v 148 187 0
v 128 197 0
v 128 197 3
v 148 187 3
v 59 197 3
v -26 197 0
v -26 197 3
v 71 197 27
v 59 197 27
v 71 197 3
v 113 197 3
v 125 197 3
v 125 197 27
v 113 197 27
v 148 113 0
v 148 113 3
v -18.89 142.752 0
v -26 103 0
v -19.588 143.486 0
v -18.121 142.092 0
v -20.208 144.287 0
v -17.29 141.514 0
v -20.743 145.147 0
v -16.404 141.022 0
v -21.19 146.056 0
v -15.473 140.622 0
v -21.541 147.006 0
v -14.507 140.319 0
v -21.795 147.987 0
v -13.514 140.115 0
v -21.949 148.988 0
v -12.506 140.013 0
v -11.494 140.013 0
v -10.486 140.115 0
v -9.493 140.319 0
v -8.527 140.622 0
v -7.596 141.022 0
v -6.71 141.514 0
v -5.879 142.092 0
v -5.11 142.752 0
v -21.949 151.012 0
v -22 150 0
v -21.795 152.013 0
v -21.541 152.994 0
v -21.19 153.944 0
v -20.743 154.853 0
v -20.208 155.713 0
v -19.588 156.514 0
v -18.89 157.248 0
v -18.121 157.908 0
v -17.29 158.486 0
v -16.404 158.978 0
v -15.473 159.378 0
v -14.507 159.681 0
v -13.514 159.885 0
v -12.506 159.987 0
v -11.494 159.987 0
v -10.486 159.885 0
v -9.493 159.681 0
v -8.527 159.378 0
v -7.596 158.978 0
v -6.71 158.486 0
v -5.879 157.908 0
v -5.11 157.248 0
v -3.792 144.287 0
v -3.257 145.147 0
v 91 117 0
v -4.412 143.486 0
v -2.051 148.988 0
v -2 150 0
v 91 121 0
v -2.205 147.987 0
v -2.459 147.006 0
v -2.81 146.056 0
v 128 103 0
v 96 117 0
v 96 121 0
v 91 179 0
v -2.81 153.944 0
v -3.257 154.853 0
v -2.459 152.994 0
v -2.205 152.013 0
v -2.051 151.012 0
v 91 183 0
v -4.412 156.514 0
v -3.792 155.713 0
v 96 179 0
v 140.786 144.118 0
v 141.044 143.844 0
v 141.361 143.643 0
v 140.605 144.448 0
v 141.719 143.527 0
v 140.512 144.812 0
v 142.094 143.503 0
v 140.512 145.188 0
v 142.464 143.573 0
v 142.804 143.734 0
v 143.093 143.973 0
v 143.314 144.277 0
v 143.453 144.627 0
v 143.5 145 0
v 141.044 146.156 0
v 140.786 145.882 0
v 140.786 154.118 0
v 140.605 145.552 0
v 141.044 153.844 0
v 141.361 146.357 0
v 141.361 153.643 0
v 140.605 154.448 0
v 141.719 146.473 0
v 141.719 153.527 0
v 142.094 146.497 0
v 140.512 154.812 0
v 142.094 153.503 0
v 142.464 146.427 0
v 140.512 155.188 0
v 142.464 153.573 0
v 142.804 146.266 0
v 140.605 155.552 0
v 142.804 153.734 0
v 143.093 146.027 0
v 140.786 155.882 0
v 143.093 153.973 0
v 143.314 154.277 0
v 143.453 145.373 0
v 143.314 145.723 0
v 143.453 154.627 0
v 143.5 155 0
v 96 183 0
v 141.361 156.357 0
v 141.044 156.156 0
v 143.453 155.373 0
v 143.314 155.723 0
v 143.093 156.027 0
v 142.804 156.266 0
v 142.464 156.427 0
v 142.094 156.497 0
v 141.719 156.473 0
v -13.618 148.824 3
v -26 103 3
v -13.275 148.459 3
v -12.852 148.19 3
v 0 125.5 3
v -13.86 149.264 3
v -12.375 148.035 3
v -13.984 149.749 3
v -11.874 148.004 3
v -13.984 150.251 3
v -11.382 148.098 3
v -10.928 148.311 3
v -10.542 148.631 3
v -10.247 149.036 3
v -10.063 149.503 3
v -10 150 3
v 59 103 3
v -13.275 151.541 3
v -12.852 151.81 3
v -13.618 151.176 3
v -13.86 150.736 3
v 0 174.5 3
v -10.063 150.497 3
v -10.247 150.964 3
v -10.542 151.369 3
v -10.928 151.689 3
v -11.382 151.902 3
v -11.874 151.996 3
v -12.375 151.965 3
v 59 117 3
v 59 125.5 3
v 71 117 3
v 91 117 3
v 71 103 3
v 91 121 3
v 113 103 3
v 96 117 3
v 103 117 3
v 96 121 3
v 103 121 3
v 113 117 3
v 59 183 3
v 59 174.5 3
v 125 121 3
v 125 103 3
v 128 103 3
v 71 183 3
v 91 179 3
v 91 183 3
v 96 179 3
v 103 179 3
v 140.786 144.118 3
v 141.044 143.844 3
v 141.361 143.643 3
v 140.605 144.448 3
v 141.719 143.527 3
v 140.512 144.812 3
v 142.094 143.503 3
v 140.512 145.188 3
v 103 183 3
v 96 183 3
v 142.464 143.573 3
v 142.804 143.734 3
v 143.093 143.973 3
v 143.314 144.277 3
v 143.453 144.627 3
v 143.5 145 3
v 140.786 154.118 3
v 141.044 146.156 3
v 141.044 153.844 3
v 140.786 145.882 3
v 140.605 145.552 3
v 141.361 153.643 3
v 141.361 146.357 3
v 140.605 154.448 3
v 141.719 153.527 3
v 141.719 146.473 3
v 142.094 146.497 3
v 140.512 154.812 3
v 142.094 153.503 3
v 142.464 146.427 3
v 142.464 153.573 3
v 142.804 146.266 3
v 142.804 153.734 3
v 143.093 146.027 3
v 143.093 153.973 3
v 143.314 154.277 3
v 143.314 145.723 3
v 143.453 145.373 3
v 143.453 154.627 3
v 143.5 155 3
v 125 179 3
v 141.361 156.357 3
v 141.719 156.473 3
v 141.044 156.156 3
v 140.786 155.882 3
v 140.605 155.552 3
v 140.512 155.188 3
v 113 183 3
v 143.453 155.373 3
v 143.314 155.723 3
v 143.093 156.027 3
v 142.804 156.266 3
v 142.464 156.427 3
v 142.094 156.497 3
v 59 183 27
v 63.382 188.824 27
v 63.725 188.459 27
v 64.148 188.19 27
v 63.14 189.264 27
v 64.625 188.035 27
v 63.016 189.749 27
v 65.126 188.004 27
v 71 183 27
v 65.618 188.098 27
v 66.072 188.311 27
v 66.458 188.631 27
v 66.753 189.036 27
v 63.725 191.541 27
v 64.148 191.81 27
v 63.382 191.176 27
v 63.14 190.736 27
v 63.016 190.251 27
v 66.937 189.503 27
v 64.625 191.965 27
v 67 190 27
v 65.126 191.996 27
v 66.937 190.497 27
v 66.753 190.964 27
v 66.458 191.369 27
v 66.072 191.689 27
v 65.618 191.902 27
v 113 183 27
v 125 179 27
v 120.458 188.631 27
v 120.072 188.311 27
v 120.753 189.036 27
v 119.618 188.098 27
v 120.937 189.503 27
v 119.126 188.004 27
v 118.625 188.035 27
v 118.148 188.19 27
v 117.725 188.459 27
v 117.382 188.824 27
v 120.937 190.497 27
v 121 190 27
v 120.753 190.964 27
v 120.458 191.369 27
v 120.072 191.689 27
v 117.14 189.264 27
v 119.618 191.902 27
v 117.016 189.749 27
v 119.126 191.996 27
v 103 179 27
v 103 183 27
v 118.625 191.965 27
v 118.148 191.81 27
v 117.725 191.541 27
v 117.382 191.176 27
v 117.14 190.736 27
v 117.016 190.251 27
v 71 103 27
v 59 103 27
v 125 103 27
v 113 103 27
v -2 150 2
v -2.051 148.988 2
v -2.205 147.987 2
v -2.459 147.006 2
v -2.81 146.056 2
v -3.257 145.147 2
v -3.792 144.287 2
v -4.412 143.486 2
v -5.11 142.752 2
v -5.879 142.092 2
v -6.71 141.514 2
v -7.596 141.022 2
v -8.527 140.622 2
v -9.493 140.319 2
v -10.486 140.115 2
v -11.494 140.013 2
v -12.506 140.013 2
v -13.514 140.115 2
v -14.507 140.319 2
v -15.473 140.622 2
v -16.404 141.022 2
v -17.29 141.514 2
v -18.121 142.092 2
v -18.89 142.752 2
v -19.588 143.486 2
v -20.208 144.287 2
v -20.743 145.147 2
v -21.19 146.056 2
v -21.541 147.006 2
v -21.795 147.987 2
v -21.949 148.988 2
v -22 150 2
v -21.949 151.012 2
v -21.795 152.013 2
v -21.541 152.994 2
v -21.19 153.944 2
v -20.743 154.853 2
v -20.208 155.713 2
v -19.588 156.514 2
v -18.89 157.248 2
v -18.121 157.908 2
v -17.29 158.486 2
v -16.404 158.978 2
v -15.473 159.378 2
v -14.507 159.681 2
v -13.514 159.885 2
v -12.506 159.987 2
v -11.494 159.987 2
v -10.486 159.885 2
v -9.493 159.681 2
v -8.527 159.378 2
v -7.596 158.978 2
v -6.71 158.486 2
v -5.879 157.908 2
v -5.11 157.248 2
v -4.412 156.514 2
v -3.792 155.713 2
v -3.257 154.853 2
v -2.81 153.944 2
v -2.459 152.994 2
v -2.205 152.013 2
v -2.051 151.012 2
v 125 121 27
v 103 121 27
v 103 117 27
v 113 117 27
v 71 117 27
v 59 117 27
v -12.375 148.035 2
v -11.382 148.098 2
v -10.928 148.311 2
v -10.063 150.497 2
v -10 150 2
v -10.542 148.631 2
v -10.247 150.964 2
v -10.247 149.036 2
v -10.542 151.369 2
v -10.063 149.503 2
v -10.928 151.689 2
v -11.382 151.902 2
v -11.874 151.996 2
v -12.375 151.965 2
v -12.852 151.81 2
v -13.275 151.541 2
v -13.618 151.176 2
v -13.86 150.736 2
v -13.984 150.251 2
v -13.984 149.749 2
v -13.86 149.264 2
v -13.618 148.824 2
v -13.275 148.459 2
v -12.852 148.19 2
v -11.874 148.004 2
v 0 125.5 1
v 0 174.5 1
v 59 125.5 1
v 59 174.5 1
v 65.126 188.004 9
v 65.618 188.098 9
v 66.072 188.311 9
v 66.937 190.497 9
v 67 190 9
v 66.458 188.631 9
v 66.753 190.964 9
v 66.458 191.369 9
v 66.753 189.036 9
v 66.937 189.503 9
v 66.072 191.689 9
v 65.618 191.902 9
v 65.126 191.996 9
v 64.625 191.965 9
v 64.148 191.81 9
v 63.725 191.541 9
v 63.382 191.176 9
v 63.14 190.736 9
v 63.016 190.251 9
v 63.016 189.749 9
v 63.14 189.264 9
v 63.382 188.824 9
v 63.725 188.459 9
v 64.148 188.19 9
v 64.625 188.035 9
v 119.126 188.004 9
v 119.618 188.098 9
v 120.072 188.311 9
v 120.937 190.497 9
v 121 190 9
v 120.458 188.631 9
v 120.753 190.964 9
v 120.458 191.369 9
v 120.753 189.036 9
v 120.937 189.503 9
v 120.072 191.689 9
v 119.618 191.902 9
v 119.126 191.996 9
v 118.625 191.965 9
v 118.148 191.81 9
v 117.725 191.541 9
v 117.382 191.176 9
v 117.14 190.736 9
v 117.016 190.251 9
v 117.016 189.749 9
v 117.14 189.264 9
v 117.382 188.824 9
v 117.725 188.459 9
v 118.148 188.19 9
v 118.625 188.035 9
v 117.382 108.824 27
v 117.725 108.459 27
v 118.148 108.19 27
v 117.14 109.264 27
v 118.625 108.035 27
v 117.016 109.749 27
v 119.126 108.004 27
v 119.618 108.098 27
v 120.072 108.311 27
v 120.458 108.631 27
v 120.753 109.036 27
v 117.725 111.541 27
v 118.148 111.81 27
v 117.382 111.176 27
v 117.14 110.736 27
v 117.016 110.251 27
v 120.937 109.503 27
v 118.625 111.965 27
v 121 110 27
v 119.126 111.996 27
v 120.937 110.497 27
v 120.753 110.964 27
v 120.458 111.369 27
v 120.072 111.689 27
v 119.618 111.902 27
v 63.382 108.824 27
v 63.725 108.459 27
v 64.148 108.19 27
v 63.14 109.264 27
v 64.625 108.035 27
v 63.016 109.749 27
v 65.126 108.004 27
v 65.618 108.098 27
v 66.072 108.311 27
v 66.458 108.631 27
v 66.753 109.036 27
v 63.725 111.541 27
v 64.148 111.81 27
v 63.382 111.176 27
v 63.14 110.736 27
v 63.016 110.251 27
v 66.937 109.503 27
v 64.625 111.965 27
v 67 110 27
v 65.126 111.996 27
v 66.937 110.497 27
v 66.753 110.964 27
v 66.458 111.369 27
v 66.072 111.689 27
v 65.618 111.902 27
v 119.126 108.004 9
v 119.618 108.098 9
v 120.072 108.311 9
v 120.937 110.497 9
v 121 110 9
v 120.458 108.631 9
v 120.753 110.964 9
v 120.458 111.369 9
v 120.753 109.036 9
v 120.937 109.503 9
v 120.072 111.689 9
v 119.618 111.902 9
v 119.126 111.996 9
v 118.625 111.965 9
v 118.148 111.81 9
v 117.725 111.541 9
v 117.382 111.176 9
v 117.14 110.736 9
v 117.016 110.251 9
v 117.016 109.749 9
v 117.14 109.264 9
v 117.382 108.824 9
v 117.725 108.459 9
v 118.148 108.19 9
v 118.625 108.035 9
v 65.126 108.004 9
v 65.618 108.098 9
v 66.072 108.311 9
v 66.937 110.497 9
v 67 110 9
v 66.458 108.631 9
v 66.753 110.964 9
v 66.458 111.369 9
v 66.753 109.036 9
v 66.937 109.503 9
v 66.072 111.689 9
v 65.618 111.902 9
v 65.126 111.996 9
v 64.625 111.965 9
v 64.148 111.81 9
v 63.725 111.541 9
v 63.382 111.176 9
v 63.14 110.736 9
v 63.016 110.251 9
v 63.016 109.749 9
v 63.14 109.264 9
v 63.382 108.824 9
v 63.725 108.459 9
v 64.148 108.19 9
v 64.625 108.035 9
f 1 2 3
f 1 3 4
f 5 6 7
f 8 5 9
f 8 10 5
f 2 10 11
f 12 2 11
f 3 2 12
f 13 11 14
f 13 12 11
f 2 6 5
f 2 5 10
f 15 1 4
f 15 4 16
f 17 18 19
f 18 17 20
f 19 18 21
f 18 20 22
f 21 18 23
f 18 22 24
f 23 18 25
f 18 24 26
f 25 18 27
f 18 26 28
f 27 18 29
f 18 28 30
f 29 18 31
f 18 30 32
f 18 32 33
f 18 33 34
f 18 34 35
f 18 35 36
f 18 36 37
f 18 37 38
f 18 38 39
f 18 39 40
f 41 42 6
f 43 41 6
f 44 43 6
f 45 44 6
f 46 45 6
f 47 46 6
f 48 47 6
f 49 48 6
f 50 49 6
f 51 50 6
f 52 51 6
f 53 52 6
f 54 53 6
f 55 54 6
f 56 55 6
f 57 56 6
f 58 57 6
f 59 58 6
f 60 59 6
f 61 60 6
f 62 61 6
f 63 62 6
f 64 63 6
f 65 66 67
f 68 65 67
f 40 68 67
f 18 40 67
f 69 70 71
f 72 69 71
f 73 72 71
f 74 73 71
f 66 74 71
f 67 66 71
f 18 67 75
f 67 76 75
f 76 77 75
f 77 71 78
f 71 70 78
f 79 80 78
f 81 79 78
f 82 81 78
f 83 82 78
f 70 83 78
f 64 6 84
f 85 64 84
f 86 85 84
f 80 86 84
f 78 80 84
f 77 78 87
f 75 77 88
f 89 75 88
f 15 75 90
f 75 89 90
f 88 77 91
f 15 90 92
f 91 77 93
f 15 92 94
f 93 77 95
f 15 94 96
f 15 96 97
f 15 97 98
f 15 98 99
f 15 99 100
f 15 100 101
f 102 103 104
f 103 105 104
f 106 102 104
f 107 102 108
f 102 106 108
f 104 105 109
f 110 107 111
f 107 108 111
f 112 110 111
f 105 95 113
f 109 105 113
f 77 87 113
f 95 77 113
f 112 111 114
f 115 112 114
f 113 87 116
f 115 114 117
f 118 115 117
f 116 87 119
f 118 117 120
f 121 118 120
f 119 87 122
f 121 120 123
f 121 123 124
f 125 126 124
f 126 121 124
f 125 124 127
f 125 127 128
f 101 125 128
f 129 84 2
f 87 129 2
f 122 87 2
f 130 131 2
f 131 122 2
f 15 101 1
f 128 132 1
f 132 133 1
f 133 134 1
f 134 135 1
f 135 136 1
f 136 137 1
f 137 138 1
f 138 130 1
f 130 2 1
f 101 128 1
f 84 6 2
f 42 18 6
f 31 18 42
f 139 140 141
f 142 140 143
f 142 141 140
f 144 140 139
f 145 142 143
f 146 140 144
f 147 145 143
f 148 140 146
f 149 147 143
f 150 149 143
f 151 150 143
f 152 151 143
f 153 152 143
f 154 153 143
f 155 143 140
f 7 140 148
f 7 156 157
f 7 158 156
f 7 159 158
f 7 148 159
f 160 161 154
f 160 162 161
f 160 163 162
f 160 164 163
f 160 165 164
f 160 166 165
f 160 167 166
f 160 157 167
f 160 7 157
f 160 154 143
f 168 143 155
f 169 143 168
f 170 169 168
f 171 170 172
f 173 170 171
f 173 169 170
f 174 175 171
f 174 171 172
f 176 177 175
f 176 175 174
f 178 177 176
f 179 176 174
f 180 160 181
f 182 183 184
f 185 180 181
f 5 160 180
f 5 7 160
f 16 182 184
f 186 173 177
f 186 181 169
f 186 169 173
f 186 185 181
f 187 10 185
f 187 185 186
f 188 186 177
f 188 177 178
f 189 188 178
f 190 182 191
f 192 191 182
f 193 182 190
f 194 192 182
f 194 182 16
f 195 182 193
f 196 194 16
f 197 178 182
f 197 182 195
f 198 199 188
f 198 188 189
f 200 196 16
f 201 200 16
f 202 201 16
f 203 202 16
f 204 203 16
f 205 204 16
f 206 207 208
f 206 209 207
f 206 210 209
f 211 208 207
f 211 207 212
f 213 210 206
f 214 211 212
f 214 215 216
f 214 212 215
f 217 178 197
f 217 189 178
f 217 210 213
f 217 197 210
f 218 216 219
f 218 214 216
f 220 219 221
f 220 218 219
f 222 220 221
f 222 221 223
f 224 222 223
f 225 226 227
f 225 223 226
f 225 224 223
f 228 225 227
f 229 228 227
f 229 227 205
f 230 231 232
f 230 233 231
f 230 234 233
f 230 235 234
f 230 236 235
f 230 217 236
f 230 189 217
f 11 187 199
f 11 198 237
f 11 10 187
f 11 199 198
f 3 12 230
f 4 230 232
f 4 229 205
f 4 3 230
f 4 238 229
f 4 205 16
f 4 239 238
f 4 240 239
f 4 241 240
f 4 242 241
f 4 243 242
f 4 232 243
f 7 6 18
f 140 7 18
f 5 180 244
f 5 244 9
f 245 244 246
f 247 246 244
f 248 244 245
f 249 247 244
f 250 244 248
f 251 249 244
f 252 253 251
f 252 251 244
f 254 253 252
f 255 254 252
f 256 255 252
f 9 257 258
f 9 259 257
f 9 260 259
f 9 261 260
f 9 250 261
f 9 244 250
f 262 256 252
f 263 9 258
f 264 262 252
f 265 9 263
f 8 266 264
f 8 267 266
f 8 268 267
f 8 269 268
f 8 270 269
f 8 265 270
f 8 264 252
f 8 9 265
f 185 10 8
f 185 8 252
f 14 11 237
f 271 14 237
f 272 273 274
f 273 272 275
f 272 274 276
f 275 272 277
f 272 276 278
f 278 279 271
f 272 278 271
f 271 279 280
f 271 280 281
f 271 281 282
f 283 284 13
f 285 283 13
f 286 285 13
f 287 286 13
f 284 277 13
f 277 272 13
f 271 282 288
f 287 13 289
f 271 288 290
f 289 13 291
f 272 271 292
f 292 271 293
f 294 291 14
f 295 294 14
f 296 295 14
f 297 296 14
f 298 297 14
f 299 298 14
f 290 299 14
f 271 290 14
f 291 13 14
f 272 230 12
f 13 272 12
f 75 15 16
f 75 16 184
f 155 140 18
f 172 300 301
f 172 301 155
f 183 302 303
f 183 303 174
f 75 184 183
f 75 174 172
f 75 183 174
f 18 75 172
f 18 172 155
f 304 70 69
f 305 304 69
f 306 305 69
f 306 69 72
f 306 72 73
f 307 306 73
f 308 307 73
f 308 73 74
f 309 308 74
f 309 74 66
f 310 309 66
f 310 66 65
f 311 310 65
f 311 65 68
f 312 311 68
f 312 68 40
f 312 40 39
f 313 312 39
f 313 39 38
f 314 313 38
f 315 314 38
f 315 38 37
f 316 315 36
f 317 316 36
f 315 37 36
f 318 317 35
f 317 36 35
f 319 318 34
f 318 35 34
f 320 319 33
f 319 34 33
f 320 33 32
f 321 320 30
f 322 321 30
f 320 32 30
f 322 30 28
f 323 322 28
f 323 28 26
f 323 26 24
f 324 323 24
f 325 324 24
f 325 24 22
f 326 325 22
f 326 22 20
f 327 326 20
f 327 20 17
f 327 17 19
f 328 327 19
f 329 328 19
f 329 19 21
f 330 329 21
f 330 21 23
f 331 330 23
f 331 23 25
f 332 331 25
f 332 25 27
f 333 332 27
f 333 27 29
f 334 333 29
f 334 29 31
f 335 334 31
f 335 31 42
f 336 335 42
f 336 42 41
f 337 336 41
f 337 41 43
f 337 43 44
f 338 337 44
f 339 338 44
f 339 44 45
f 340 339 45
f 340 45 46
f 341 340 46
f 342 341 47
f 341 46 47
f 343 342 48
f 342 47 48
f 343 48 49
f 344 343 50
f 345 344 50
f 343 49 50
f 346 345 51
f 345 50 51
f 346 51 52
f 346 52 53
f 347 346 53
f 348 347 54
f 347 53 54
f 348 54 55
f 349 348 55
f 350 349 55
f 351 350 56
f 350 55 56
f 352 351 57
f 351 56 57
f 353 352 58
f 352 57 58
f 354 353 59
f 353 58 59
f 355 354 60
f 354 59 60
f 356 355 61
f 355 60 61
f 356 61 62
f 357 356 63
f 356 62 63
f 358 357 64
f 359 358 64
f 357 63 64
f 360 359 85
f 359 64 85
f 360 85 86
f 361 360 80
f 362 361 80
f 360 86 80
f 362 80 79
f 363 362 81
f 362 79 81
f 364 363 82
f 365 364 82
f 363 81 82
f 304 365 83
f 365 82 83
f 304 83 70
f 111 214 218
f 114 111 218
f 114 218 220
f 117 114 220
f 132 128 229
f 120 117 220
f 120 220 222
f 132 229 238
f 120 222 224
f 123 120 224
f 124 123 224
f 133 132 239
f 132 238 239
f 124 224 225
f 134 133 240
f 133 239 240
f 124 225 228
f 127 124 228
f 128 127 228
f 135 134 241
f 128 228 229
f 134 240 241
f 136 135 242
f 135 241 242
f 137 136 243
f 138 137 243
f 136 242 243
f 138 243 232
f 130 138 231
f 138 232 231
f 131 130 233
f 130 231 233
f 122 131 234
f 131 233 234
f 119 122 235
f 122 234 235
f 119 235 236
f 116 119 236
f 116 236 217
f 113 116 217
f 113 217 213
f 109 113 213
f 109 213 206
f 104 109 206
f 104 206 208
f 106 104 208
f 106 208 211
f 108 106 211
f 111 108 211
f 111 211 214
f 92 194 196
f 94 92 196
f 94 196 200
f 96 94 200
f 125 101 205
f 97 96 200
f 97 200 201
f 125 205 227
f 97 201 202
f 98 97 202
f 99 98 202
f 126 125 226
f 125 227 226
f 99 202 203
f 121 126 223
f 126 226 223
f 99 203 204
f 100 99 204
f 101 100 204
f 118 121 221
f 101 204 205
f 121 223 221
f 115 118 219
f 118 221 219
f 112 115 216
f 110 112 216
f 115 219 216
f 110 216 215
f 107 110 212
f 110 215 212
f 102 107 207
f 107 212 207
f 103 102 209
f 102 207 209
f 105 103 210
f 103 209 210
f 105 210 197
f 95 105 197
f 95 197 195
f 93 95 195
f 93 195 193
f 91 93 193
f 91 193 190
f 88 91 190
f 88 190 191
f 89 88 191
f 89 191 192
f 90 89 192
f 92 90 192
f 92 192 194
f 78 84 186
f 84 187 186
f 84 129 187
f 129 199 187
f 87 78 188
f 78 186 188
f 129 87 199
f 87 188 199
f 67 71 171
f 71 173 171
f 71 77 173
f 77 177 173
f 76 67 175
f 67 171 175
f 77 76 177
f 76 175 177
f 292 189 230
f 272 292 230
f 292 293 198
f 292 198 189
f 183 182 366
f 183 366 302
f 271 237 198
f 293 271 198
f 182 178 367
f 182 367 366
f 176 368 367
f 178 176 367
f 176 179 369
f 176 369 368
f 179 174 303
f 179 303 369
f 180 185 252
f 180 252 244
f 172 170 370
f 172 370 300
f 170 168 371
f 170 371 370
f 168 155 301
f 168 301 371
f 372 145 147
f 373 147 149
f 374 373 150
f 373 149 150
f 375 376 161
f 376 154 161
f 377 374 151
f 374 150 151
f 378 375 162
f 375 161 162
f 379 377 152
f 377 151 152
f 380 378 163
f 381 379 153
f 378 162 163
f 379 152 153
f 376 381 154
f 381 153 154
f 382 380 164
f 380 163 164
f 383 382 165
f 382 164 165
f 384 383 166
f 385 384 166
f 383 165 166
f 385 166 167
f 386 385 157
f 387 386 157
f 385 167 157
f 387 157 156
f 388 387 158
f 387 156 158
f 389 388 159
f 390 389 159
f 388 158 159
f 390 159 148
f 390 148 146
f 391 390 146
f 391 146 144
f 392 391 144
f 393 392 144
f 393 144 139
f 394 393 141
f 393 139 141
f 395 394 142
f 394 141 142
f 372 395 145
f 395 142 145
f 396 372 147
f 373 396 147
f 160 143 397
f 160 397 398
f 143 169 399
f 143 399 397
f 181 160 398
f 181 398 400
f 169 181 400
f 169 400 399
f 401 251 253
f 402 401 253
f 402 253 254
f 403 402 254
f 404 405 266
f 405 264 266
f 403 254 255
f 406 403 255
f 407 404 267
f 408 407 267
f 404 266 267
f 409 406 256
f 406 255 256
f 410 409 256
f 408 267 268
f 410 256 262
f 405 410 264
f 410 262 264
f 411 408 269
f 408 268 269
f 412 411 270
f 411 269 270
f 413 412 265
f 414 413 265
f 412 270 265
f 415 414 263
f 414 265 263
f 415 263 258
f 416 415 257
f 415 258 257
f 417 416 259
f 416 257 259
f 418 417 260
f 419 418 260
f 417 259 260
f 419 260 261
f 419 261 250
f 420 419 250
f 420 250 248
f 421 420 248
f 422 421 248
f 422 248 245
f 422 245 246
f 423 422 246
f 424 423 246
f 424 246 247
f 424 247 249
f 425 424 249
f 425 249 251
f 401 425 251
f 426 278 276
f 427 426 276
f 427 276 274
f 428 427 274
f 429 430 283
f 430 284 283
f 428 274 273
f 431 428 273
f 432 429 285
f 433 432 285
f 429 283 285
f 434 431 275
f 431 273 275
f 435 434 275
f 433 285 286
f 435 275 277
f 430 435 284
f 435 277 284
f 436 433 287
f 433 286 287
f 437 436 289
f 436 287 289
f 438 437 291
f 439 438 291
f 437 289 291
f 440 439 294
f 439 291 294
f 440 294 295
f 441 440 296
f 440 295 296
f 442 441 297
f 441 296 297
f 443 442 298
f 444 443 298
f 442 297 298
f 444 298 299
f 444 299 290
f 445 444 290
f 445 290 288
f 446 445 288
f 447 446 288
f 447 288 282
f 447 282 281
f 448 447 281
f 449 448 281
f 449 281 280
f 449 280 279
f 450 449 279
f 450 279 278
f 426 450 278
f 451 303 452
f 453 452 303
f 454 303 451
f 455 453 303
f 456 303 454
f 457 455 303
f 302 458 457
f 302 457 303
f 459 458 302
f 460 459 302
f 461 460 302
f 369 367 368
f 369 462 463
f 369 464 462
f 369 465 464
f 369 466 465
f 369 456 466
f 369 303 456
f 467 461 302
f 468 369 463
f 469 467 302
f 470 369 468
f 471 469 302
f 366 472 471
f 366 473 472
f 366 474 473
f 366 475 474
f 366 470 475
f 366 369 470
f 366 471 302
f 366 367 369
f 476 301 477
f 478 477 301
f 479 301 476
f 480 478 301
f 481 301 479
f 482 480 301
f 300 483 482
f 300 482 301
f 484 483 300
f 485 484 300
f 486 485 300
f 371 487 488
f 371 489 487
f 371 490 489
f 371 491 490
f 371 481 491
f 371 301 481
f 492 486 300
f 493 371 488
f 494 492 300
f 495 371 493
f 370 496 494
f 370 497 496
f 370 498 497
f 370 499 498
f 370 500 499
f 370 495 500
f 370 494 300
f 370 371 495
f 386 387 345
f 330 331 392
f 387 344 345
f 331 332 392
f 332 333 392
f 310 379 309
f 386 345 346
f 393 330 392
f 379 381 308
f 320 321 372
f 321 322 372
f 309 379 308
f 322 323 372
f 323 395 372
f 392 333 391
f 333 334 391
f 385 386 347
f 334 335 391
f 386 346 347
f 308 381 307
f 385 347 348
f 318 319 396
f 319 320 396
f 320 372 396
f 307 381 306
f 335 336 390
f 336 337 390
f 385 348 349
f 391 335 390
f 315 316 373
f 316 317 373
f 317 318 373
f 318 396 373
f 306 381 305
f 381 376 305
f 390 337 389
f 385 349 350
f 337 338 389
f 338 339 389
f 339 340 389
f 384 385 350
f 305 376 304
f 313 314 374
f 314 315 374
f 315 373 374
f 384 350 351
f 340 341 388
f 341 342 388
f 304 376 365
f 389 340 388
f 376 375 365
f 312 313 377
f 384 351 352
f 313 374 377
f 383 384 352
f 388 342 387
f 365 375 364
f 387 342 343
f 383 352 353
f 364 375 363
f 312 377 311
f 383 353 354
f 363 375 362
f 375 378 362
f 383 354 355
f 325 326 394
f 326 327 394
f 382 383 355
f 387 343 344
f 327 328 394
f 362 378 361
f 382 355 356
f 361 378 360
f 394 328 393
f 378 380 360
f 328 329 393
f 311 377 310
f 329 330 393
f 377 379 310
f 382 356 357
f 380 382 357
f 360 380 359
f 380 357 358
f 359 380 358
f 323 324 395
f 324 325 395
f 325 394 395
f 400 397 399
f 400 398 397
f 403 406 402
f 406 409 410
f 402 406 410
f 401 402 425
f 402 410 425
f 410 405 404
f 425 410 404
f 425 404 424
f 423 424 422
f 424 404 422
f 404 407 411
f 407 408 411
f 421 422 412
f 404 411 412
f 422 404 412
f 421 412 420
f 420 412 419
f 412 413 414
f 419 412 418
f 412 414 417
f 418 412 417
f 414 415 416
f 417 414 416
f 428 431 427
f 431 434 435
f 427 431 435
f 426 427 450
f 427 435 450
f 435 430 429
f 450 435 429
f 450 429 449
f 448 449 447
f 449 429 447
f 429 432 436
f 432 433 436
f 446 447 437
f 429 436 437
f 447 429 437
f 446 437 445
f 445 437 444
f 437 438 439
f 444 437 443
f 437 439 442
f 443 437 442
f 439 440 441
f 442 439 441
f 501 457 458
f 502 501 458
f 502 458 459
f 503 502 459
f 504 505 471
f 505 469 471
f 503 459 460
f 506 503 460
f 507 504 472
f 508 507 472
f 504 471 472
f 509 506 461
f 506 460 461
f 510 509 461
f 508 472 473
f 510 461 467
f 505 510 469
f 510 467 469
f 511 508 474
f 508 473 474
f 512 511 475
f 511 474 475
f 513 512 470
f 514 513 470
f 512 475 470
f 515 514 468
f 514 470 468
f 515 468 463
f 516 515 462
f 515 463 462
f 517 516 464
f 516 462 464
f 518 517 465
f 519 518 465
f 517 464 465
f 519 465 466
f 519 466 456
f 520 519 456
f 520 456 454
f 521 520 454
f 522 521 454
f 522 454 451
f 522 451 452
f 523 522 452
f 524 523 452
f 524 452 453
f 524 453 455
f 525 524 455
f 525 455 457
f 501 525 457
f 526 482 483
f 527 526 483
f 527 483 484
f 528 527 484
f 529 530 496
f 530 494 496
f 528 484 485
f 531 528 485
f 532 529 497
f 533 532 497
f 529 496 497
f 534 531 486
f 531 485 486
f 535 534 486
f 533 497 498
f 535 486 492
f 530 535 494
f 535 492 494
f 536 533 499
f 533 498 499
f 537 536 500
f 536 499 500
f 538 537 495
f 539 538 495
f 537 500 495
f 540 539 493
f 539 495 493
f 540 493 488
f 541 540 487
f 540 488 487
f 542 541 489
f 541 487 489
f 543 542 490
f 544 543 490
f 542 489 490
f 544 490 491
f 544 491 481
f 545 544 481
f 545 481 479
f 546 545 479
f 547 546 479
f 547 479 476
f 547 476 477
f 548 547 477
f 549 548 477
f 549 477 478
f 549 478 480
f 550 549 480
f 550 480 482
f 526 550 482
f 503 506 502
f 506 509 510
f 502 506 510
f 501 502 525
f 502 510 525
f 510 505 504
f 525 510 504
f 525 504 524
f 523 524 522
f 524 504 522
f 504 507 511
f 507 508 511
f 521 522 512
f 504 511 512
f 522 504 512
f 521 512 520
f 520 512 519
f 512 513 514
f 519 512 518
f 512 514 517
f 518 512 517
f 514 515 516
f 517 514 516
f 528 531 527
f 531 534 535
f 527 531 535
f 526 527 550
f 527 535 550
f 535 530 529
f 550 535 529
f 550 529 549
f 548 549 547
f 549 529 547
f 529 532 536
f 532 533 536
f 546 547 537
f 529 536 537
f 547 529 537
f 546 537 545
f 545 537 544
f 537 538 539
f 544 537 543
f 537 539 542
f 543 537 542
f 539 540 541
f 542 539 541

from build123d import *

# Parameters (mm, degrees)
PAD_DEPTH       = 3
SKETCH001_W     = 59
SKETCH001_H     = 49
POCKET_DEPTH    = 2
SKETCH002_W     = 12
SKETCH002_H     = 14
PAD001_DEPTH    = 24
SKETCH003_R     = 2
SKETCH003_R_2   = 1.5
SKETCH003_W     = 5
SKETCH003_H     = 4
POCKET001_DEPTH = 3.001
SKETCH004_R     = 10
POCKET002_DEPTH = 2
SKETCH005_R     = 2
POCKET003_DEPTH = 18


with BuildPart() as part:
    # Sketch → Pad (new body)
    with BuildSketch(Plane(origin=(0, 150, 0), x_dir=(1, 0, 0), z_dir=(0, 0, 1))):
        Polygon((-26, 47), (-26, -47), (128, -47), (148, -37), (148, 37), (128, 47), align=None)
    extrude(amount=PAD_DEPTH)

    # Sketch001 → Pocket (cut)
    with BuildSketch(Plane(origin=(0, 150, 3), x_dir=(1, 0, 0), z_dir=(0, 0, 1))):
        with Locations((29.5, 0)):
            Rectangle(SKETCH001_W, SKETCH001_H)
    extrude(amount=-POCKET_DEPTH, mode=Mode.SUBTRACT)

    # Sketch002 → Pad001 (new body)
    with BuildSketch(Plane(origin=(0, 150, 3), x_dir=(1, 0, 0), z_dir=(0, 0, 1))):
        with Locations((65, 40)):
            Rectangle(SKETCH002_W, SKETCH002_H)
        with Locations((65, -40)):
            Rectangle(SKETCH002_W, SKETCH002_H)
        Polygon((103, 29), (125, 29), (125, 47), (113, 47), (113, 33), (103, 33), align=None)
        Polygon((103, -29), (125, -29), (125, -47), (113, -47), (113, -33), (103, -33), align=None)
    extrude(amount=PAD001_DEPTH)

    # Sketch003 → Pocket001 (cut, through all)
    with BuildSketch(Plane(origin=(0, 150, 3), x_dir=(1, 0, 0), z_dir=(0, 0, 1))):
        with Locations((-12, 0)):
            Circle(SKETCH003_R)
        with Locations((142, 5)):
            Circle(SKETCH003_R_2)
        with Locations((142, -5)):
            Circle(SKETCH003_R_2)
        with Locations((93.5, 31)):
            Rectangle(SKETCH003_W, SKETCH003_H)
        with Locations((93.5, -31)):
            Rectangle(SKETCH003_W, SKETCH003_H)
    extrude(amount=-POCKET001_DEPTH, mode=Mode.SUBTRACT)

    # Sketch004 → Pocket002 (cut)
    with BuildSketch(Plane(origin=(0, 150, 0), x_dir=(1, 0, 0), z_dir=(0, 0, -1))):
        with Locations((-12, 0)):
            Circle(SKETCH004_R)
    extrude(amount=-POCKET002_DEPTH, mode=Mode.SUBTRACT)

    # Sketch005 → Pocket003 (cut)
    with BuildSketch(Plane(origin=(0, 150, 27), x_dir=(1, 0, 0), z_dir=(0, 0, 1))):
        with Locations((119, 40)):
            Circle(SKETCH005_R)
        with Locations((65, 40)):
            Circle(SKETCH005_R)
        with Locations((119, -40)):
            Circle(SKETCH005_R)
        with Locations((65, -40)):
            Circle(SKETCH005_R)
    extrude(amount=-POCKET003_DEPTH, mode=Mode.SUBTRACT)


solid = part.part
